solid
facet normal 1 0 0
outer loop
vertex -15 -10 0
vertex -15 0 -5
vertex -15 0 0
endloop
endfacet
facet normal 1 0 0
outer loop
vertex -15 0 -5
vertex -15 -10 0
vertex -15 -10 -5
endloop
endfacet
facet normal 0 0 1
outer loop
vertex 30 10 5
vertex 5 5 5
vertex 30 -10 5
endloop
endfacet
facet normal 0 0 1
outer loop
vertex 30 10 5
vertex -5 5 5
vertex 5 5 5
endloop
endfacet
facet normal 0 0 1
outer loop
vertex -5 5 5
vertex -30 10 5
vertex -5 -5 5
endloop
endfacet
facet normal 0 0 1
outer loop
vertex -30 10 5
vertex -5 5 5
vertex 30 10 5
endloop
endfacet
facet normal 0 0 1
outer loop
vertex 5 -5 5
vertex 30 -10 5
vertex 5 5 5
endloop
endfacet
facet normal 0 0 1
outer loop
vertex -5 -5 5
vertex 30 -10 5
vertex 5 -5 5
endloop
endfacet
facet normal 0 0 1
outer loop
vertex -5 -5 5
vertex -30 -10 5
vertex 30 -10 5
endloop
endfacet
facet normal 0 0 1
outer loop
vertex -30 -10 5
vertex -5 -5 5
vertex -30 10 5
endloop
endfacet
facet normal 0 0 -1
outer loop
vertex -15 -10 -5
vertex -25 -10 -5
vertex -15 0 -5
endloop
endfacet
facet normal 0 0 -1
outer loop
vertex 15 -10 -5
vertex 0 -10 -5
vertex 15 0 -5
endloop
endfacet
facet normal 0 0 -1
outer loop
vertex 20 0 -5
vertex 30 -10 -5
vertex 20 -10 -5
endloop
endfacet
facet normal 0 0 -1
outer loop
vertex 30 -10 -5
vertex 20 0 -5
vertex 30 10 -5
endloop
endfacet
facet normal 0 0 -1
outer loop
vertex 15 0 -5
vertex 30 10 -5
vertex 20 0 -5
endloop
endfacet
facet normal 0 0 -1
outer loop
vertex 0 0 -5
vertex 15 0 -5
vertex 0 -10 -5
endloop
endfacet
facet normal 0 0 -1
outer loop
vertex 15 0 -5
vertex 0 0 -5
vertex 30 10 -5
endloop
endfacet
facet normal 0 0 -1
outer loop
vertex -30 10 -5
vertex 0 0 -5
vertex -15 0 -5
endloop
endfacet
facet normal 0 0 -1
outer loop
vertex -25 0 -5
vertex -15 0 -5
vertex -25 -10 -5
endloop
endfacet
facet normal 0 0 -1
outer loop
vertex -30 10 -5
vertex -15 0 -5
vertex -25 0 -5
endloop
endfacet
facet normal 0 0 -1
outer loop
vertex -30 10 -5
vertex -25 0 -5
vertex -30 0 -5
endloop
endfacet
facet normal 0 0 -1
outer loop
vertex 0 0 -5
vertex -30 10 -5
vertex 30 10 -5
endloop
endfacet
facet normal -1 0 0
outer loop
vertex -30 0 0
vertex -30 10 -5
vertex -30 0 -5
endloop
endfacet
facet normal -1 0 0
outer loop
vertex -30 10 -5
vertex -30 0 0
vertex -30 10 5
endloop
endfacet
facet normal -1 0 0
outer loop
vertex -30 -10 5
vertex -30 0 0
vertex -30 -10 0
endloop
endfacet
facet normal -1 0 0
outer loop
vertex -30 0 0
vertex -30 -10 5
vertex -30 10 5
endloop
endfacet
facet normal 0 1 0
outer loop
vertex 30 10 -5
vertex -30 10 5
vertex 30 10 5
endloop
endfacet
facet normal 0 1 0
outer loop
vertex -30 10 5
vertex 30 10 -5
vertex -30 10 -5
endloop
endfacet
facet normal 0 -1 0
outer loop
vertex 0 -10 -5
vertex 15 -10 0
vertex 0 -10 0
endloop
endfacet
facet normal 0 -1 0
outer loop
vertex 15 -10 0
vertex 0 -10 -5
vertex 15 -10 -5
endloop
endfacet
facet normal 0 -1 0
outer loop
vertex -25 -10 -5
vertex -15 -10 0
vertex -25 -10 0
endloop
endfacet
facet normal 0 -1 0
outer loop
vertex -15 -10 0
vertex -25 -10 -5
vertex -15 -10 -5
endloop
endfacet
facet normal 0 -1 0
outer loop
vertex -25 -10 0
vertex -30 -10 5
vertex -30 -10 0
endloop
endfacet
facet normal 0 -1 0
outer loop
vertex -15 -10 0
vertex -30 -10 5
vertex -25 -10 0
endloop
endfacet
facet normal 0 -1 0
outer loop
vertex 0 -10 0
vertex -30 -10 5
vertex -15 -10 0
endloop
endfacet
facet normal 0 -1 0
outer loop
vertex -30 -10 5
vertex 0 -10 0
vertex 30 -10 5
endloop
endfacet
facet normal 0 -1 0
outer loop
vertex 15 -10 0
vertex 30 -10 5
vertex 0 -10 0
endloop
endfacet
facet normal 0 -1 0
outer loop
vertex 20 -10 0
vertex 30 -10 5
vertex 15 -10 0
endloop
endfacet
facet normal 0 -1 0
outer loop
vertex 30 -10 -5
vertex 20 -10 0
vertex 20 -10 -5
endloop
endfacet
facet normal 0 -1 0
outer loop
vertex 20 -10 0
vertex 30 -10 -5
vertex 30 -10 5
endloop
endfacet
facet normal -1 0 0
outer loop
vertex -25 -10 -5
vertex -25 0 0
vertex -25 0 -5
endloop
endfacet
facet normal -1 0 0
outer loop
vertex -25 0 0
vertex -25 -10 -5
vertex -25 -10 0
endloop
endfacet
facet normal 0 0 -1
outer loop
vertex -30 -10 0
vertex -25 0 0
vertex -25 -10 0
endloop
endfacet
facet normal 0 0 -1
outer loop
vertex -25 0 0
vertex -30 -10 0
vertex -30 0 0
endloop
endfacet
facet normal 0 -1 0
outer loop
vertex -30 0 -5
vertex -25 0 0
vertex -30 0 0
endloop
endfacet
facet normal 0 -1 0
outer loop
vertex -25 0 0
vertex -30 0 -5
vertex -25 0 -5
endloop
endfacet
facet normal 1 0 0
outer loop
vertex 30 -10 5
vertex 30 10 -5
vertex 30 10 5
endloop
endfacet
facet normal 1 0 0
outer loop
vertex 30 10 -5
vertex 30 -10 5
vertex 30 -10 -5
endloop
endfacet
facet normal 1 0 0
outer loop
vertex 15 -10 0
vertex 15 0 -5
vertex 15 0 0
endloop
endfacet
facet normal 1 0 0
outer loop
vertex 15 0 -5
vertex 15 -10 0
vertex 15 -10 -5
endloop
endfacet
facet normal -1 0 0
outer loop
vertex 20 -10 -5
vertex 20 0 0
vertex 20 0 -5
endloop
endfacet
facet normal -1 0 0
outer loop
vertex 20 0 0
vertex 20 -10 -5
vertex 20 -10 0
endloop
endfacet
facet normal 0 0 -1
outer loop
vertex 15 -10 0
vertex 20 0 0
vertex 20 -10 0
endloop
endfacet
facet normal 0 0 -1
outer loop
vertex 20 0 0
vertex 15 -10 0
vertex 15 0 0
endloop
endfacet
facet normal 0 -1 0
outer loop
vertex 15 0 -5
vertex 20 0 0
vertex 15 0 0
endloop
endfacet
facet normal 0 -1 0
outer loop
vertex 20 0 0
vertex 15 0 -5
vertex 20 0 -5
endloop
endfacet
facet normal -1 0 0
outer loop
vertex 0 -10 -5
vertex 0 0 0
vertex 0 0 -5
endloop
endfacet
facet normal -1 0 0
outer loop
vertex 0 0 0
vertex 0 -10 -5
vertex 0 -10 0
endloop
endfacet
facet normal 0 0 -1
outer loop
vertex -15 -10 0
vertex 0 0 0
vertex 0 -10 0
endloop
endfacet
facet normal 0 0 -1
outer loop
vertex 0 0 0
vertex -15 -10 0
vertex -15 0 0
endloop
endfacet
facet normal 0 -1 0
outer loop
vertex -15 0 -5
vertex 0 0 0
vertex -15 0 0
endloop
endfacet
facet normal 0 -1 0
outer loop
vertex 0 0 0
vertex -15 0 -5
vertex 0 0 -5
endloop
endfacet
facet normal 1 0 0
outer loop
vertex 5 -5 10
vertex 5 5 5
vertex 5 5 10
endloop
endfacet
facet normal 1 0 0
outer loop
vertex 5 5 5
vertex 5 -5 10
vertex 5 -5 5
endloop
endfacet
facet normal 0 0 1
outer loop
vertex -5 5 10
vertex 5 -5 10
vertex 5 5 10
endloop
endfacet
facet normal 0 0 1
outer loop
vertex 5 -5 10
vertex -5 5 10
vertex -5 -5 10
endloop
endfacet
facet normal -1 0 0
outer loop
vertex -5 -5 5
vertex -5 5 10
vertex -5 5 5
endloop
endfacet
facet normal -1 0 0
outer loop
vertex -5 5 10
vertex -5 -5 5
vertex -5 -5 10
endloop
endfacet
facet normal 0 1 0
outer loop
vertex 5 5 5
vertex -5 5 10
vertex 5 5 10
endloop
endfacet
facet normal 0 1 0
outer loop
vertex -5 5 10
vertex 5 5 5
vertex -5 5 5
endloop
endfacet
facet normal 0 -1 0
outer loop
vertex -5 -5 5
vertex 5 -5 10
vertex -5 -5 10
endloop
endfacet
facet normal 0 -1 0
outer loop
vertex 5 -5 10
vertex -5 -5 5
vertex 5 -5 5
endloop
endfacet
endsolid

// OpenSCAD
// Define dimensions for the components
module central_block() {
    difference() {
        cube([30, 20, 10], center = true); // Main block
        translate([-15, -5, -5])
            cube([30, 10, 10], center = true); // U-shaped cutout
    }
}

module side_block() {
    difference() {
        cube([15, 20, 10], center = true); // Main block
        translate([-7.5, -5, -5])
            cube([10, 10, 10], center = true); // Rectangular cutout
    }
}

module connector_block() {
    difference() {
        cube([10, 10, 10], center = true); // Main block
        translate([-5, -2.5, -5])
            cube([10, 5, 10], center = true); // Protruding section
    }
}

// Assemble the components
module assembly() {
    // Layer 1: Side blocks
    translate([-22.5, 0, 0])
        side_block();
    translate([22.5, 0, 0])
        side_block();

    // Layer 2: Central block
    central_block();

    // Layer 3: Connector block
    translate([0, 0, 5])
        connector_block();
}

// Render the assembly
assembly();
